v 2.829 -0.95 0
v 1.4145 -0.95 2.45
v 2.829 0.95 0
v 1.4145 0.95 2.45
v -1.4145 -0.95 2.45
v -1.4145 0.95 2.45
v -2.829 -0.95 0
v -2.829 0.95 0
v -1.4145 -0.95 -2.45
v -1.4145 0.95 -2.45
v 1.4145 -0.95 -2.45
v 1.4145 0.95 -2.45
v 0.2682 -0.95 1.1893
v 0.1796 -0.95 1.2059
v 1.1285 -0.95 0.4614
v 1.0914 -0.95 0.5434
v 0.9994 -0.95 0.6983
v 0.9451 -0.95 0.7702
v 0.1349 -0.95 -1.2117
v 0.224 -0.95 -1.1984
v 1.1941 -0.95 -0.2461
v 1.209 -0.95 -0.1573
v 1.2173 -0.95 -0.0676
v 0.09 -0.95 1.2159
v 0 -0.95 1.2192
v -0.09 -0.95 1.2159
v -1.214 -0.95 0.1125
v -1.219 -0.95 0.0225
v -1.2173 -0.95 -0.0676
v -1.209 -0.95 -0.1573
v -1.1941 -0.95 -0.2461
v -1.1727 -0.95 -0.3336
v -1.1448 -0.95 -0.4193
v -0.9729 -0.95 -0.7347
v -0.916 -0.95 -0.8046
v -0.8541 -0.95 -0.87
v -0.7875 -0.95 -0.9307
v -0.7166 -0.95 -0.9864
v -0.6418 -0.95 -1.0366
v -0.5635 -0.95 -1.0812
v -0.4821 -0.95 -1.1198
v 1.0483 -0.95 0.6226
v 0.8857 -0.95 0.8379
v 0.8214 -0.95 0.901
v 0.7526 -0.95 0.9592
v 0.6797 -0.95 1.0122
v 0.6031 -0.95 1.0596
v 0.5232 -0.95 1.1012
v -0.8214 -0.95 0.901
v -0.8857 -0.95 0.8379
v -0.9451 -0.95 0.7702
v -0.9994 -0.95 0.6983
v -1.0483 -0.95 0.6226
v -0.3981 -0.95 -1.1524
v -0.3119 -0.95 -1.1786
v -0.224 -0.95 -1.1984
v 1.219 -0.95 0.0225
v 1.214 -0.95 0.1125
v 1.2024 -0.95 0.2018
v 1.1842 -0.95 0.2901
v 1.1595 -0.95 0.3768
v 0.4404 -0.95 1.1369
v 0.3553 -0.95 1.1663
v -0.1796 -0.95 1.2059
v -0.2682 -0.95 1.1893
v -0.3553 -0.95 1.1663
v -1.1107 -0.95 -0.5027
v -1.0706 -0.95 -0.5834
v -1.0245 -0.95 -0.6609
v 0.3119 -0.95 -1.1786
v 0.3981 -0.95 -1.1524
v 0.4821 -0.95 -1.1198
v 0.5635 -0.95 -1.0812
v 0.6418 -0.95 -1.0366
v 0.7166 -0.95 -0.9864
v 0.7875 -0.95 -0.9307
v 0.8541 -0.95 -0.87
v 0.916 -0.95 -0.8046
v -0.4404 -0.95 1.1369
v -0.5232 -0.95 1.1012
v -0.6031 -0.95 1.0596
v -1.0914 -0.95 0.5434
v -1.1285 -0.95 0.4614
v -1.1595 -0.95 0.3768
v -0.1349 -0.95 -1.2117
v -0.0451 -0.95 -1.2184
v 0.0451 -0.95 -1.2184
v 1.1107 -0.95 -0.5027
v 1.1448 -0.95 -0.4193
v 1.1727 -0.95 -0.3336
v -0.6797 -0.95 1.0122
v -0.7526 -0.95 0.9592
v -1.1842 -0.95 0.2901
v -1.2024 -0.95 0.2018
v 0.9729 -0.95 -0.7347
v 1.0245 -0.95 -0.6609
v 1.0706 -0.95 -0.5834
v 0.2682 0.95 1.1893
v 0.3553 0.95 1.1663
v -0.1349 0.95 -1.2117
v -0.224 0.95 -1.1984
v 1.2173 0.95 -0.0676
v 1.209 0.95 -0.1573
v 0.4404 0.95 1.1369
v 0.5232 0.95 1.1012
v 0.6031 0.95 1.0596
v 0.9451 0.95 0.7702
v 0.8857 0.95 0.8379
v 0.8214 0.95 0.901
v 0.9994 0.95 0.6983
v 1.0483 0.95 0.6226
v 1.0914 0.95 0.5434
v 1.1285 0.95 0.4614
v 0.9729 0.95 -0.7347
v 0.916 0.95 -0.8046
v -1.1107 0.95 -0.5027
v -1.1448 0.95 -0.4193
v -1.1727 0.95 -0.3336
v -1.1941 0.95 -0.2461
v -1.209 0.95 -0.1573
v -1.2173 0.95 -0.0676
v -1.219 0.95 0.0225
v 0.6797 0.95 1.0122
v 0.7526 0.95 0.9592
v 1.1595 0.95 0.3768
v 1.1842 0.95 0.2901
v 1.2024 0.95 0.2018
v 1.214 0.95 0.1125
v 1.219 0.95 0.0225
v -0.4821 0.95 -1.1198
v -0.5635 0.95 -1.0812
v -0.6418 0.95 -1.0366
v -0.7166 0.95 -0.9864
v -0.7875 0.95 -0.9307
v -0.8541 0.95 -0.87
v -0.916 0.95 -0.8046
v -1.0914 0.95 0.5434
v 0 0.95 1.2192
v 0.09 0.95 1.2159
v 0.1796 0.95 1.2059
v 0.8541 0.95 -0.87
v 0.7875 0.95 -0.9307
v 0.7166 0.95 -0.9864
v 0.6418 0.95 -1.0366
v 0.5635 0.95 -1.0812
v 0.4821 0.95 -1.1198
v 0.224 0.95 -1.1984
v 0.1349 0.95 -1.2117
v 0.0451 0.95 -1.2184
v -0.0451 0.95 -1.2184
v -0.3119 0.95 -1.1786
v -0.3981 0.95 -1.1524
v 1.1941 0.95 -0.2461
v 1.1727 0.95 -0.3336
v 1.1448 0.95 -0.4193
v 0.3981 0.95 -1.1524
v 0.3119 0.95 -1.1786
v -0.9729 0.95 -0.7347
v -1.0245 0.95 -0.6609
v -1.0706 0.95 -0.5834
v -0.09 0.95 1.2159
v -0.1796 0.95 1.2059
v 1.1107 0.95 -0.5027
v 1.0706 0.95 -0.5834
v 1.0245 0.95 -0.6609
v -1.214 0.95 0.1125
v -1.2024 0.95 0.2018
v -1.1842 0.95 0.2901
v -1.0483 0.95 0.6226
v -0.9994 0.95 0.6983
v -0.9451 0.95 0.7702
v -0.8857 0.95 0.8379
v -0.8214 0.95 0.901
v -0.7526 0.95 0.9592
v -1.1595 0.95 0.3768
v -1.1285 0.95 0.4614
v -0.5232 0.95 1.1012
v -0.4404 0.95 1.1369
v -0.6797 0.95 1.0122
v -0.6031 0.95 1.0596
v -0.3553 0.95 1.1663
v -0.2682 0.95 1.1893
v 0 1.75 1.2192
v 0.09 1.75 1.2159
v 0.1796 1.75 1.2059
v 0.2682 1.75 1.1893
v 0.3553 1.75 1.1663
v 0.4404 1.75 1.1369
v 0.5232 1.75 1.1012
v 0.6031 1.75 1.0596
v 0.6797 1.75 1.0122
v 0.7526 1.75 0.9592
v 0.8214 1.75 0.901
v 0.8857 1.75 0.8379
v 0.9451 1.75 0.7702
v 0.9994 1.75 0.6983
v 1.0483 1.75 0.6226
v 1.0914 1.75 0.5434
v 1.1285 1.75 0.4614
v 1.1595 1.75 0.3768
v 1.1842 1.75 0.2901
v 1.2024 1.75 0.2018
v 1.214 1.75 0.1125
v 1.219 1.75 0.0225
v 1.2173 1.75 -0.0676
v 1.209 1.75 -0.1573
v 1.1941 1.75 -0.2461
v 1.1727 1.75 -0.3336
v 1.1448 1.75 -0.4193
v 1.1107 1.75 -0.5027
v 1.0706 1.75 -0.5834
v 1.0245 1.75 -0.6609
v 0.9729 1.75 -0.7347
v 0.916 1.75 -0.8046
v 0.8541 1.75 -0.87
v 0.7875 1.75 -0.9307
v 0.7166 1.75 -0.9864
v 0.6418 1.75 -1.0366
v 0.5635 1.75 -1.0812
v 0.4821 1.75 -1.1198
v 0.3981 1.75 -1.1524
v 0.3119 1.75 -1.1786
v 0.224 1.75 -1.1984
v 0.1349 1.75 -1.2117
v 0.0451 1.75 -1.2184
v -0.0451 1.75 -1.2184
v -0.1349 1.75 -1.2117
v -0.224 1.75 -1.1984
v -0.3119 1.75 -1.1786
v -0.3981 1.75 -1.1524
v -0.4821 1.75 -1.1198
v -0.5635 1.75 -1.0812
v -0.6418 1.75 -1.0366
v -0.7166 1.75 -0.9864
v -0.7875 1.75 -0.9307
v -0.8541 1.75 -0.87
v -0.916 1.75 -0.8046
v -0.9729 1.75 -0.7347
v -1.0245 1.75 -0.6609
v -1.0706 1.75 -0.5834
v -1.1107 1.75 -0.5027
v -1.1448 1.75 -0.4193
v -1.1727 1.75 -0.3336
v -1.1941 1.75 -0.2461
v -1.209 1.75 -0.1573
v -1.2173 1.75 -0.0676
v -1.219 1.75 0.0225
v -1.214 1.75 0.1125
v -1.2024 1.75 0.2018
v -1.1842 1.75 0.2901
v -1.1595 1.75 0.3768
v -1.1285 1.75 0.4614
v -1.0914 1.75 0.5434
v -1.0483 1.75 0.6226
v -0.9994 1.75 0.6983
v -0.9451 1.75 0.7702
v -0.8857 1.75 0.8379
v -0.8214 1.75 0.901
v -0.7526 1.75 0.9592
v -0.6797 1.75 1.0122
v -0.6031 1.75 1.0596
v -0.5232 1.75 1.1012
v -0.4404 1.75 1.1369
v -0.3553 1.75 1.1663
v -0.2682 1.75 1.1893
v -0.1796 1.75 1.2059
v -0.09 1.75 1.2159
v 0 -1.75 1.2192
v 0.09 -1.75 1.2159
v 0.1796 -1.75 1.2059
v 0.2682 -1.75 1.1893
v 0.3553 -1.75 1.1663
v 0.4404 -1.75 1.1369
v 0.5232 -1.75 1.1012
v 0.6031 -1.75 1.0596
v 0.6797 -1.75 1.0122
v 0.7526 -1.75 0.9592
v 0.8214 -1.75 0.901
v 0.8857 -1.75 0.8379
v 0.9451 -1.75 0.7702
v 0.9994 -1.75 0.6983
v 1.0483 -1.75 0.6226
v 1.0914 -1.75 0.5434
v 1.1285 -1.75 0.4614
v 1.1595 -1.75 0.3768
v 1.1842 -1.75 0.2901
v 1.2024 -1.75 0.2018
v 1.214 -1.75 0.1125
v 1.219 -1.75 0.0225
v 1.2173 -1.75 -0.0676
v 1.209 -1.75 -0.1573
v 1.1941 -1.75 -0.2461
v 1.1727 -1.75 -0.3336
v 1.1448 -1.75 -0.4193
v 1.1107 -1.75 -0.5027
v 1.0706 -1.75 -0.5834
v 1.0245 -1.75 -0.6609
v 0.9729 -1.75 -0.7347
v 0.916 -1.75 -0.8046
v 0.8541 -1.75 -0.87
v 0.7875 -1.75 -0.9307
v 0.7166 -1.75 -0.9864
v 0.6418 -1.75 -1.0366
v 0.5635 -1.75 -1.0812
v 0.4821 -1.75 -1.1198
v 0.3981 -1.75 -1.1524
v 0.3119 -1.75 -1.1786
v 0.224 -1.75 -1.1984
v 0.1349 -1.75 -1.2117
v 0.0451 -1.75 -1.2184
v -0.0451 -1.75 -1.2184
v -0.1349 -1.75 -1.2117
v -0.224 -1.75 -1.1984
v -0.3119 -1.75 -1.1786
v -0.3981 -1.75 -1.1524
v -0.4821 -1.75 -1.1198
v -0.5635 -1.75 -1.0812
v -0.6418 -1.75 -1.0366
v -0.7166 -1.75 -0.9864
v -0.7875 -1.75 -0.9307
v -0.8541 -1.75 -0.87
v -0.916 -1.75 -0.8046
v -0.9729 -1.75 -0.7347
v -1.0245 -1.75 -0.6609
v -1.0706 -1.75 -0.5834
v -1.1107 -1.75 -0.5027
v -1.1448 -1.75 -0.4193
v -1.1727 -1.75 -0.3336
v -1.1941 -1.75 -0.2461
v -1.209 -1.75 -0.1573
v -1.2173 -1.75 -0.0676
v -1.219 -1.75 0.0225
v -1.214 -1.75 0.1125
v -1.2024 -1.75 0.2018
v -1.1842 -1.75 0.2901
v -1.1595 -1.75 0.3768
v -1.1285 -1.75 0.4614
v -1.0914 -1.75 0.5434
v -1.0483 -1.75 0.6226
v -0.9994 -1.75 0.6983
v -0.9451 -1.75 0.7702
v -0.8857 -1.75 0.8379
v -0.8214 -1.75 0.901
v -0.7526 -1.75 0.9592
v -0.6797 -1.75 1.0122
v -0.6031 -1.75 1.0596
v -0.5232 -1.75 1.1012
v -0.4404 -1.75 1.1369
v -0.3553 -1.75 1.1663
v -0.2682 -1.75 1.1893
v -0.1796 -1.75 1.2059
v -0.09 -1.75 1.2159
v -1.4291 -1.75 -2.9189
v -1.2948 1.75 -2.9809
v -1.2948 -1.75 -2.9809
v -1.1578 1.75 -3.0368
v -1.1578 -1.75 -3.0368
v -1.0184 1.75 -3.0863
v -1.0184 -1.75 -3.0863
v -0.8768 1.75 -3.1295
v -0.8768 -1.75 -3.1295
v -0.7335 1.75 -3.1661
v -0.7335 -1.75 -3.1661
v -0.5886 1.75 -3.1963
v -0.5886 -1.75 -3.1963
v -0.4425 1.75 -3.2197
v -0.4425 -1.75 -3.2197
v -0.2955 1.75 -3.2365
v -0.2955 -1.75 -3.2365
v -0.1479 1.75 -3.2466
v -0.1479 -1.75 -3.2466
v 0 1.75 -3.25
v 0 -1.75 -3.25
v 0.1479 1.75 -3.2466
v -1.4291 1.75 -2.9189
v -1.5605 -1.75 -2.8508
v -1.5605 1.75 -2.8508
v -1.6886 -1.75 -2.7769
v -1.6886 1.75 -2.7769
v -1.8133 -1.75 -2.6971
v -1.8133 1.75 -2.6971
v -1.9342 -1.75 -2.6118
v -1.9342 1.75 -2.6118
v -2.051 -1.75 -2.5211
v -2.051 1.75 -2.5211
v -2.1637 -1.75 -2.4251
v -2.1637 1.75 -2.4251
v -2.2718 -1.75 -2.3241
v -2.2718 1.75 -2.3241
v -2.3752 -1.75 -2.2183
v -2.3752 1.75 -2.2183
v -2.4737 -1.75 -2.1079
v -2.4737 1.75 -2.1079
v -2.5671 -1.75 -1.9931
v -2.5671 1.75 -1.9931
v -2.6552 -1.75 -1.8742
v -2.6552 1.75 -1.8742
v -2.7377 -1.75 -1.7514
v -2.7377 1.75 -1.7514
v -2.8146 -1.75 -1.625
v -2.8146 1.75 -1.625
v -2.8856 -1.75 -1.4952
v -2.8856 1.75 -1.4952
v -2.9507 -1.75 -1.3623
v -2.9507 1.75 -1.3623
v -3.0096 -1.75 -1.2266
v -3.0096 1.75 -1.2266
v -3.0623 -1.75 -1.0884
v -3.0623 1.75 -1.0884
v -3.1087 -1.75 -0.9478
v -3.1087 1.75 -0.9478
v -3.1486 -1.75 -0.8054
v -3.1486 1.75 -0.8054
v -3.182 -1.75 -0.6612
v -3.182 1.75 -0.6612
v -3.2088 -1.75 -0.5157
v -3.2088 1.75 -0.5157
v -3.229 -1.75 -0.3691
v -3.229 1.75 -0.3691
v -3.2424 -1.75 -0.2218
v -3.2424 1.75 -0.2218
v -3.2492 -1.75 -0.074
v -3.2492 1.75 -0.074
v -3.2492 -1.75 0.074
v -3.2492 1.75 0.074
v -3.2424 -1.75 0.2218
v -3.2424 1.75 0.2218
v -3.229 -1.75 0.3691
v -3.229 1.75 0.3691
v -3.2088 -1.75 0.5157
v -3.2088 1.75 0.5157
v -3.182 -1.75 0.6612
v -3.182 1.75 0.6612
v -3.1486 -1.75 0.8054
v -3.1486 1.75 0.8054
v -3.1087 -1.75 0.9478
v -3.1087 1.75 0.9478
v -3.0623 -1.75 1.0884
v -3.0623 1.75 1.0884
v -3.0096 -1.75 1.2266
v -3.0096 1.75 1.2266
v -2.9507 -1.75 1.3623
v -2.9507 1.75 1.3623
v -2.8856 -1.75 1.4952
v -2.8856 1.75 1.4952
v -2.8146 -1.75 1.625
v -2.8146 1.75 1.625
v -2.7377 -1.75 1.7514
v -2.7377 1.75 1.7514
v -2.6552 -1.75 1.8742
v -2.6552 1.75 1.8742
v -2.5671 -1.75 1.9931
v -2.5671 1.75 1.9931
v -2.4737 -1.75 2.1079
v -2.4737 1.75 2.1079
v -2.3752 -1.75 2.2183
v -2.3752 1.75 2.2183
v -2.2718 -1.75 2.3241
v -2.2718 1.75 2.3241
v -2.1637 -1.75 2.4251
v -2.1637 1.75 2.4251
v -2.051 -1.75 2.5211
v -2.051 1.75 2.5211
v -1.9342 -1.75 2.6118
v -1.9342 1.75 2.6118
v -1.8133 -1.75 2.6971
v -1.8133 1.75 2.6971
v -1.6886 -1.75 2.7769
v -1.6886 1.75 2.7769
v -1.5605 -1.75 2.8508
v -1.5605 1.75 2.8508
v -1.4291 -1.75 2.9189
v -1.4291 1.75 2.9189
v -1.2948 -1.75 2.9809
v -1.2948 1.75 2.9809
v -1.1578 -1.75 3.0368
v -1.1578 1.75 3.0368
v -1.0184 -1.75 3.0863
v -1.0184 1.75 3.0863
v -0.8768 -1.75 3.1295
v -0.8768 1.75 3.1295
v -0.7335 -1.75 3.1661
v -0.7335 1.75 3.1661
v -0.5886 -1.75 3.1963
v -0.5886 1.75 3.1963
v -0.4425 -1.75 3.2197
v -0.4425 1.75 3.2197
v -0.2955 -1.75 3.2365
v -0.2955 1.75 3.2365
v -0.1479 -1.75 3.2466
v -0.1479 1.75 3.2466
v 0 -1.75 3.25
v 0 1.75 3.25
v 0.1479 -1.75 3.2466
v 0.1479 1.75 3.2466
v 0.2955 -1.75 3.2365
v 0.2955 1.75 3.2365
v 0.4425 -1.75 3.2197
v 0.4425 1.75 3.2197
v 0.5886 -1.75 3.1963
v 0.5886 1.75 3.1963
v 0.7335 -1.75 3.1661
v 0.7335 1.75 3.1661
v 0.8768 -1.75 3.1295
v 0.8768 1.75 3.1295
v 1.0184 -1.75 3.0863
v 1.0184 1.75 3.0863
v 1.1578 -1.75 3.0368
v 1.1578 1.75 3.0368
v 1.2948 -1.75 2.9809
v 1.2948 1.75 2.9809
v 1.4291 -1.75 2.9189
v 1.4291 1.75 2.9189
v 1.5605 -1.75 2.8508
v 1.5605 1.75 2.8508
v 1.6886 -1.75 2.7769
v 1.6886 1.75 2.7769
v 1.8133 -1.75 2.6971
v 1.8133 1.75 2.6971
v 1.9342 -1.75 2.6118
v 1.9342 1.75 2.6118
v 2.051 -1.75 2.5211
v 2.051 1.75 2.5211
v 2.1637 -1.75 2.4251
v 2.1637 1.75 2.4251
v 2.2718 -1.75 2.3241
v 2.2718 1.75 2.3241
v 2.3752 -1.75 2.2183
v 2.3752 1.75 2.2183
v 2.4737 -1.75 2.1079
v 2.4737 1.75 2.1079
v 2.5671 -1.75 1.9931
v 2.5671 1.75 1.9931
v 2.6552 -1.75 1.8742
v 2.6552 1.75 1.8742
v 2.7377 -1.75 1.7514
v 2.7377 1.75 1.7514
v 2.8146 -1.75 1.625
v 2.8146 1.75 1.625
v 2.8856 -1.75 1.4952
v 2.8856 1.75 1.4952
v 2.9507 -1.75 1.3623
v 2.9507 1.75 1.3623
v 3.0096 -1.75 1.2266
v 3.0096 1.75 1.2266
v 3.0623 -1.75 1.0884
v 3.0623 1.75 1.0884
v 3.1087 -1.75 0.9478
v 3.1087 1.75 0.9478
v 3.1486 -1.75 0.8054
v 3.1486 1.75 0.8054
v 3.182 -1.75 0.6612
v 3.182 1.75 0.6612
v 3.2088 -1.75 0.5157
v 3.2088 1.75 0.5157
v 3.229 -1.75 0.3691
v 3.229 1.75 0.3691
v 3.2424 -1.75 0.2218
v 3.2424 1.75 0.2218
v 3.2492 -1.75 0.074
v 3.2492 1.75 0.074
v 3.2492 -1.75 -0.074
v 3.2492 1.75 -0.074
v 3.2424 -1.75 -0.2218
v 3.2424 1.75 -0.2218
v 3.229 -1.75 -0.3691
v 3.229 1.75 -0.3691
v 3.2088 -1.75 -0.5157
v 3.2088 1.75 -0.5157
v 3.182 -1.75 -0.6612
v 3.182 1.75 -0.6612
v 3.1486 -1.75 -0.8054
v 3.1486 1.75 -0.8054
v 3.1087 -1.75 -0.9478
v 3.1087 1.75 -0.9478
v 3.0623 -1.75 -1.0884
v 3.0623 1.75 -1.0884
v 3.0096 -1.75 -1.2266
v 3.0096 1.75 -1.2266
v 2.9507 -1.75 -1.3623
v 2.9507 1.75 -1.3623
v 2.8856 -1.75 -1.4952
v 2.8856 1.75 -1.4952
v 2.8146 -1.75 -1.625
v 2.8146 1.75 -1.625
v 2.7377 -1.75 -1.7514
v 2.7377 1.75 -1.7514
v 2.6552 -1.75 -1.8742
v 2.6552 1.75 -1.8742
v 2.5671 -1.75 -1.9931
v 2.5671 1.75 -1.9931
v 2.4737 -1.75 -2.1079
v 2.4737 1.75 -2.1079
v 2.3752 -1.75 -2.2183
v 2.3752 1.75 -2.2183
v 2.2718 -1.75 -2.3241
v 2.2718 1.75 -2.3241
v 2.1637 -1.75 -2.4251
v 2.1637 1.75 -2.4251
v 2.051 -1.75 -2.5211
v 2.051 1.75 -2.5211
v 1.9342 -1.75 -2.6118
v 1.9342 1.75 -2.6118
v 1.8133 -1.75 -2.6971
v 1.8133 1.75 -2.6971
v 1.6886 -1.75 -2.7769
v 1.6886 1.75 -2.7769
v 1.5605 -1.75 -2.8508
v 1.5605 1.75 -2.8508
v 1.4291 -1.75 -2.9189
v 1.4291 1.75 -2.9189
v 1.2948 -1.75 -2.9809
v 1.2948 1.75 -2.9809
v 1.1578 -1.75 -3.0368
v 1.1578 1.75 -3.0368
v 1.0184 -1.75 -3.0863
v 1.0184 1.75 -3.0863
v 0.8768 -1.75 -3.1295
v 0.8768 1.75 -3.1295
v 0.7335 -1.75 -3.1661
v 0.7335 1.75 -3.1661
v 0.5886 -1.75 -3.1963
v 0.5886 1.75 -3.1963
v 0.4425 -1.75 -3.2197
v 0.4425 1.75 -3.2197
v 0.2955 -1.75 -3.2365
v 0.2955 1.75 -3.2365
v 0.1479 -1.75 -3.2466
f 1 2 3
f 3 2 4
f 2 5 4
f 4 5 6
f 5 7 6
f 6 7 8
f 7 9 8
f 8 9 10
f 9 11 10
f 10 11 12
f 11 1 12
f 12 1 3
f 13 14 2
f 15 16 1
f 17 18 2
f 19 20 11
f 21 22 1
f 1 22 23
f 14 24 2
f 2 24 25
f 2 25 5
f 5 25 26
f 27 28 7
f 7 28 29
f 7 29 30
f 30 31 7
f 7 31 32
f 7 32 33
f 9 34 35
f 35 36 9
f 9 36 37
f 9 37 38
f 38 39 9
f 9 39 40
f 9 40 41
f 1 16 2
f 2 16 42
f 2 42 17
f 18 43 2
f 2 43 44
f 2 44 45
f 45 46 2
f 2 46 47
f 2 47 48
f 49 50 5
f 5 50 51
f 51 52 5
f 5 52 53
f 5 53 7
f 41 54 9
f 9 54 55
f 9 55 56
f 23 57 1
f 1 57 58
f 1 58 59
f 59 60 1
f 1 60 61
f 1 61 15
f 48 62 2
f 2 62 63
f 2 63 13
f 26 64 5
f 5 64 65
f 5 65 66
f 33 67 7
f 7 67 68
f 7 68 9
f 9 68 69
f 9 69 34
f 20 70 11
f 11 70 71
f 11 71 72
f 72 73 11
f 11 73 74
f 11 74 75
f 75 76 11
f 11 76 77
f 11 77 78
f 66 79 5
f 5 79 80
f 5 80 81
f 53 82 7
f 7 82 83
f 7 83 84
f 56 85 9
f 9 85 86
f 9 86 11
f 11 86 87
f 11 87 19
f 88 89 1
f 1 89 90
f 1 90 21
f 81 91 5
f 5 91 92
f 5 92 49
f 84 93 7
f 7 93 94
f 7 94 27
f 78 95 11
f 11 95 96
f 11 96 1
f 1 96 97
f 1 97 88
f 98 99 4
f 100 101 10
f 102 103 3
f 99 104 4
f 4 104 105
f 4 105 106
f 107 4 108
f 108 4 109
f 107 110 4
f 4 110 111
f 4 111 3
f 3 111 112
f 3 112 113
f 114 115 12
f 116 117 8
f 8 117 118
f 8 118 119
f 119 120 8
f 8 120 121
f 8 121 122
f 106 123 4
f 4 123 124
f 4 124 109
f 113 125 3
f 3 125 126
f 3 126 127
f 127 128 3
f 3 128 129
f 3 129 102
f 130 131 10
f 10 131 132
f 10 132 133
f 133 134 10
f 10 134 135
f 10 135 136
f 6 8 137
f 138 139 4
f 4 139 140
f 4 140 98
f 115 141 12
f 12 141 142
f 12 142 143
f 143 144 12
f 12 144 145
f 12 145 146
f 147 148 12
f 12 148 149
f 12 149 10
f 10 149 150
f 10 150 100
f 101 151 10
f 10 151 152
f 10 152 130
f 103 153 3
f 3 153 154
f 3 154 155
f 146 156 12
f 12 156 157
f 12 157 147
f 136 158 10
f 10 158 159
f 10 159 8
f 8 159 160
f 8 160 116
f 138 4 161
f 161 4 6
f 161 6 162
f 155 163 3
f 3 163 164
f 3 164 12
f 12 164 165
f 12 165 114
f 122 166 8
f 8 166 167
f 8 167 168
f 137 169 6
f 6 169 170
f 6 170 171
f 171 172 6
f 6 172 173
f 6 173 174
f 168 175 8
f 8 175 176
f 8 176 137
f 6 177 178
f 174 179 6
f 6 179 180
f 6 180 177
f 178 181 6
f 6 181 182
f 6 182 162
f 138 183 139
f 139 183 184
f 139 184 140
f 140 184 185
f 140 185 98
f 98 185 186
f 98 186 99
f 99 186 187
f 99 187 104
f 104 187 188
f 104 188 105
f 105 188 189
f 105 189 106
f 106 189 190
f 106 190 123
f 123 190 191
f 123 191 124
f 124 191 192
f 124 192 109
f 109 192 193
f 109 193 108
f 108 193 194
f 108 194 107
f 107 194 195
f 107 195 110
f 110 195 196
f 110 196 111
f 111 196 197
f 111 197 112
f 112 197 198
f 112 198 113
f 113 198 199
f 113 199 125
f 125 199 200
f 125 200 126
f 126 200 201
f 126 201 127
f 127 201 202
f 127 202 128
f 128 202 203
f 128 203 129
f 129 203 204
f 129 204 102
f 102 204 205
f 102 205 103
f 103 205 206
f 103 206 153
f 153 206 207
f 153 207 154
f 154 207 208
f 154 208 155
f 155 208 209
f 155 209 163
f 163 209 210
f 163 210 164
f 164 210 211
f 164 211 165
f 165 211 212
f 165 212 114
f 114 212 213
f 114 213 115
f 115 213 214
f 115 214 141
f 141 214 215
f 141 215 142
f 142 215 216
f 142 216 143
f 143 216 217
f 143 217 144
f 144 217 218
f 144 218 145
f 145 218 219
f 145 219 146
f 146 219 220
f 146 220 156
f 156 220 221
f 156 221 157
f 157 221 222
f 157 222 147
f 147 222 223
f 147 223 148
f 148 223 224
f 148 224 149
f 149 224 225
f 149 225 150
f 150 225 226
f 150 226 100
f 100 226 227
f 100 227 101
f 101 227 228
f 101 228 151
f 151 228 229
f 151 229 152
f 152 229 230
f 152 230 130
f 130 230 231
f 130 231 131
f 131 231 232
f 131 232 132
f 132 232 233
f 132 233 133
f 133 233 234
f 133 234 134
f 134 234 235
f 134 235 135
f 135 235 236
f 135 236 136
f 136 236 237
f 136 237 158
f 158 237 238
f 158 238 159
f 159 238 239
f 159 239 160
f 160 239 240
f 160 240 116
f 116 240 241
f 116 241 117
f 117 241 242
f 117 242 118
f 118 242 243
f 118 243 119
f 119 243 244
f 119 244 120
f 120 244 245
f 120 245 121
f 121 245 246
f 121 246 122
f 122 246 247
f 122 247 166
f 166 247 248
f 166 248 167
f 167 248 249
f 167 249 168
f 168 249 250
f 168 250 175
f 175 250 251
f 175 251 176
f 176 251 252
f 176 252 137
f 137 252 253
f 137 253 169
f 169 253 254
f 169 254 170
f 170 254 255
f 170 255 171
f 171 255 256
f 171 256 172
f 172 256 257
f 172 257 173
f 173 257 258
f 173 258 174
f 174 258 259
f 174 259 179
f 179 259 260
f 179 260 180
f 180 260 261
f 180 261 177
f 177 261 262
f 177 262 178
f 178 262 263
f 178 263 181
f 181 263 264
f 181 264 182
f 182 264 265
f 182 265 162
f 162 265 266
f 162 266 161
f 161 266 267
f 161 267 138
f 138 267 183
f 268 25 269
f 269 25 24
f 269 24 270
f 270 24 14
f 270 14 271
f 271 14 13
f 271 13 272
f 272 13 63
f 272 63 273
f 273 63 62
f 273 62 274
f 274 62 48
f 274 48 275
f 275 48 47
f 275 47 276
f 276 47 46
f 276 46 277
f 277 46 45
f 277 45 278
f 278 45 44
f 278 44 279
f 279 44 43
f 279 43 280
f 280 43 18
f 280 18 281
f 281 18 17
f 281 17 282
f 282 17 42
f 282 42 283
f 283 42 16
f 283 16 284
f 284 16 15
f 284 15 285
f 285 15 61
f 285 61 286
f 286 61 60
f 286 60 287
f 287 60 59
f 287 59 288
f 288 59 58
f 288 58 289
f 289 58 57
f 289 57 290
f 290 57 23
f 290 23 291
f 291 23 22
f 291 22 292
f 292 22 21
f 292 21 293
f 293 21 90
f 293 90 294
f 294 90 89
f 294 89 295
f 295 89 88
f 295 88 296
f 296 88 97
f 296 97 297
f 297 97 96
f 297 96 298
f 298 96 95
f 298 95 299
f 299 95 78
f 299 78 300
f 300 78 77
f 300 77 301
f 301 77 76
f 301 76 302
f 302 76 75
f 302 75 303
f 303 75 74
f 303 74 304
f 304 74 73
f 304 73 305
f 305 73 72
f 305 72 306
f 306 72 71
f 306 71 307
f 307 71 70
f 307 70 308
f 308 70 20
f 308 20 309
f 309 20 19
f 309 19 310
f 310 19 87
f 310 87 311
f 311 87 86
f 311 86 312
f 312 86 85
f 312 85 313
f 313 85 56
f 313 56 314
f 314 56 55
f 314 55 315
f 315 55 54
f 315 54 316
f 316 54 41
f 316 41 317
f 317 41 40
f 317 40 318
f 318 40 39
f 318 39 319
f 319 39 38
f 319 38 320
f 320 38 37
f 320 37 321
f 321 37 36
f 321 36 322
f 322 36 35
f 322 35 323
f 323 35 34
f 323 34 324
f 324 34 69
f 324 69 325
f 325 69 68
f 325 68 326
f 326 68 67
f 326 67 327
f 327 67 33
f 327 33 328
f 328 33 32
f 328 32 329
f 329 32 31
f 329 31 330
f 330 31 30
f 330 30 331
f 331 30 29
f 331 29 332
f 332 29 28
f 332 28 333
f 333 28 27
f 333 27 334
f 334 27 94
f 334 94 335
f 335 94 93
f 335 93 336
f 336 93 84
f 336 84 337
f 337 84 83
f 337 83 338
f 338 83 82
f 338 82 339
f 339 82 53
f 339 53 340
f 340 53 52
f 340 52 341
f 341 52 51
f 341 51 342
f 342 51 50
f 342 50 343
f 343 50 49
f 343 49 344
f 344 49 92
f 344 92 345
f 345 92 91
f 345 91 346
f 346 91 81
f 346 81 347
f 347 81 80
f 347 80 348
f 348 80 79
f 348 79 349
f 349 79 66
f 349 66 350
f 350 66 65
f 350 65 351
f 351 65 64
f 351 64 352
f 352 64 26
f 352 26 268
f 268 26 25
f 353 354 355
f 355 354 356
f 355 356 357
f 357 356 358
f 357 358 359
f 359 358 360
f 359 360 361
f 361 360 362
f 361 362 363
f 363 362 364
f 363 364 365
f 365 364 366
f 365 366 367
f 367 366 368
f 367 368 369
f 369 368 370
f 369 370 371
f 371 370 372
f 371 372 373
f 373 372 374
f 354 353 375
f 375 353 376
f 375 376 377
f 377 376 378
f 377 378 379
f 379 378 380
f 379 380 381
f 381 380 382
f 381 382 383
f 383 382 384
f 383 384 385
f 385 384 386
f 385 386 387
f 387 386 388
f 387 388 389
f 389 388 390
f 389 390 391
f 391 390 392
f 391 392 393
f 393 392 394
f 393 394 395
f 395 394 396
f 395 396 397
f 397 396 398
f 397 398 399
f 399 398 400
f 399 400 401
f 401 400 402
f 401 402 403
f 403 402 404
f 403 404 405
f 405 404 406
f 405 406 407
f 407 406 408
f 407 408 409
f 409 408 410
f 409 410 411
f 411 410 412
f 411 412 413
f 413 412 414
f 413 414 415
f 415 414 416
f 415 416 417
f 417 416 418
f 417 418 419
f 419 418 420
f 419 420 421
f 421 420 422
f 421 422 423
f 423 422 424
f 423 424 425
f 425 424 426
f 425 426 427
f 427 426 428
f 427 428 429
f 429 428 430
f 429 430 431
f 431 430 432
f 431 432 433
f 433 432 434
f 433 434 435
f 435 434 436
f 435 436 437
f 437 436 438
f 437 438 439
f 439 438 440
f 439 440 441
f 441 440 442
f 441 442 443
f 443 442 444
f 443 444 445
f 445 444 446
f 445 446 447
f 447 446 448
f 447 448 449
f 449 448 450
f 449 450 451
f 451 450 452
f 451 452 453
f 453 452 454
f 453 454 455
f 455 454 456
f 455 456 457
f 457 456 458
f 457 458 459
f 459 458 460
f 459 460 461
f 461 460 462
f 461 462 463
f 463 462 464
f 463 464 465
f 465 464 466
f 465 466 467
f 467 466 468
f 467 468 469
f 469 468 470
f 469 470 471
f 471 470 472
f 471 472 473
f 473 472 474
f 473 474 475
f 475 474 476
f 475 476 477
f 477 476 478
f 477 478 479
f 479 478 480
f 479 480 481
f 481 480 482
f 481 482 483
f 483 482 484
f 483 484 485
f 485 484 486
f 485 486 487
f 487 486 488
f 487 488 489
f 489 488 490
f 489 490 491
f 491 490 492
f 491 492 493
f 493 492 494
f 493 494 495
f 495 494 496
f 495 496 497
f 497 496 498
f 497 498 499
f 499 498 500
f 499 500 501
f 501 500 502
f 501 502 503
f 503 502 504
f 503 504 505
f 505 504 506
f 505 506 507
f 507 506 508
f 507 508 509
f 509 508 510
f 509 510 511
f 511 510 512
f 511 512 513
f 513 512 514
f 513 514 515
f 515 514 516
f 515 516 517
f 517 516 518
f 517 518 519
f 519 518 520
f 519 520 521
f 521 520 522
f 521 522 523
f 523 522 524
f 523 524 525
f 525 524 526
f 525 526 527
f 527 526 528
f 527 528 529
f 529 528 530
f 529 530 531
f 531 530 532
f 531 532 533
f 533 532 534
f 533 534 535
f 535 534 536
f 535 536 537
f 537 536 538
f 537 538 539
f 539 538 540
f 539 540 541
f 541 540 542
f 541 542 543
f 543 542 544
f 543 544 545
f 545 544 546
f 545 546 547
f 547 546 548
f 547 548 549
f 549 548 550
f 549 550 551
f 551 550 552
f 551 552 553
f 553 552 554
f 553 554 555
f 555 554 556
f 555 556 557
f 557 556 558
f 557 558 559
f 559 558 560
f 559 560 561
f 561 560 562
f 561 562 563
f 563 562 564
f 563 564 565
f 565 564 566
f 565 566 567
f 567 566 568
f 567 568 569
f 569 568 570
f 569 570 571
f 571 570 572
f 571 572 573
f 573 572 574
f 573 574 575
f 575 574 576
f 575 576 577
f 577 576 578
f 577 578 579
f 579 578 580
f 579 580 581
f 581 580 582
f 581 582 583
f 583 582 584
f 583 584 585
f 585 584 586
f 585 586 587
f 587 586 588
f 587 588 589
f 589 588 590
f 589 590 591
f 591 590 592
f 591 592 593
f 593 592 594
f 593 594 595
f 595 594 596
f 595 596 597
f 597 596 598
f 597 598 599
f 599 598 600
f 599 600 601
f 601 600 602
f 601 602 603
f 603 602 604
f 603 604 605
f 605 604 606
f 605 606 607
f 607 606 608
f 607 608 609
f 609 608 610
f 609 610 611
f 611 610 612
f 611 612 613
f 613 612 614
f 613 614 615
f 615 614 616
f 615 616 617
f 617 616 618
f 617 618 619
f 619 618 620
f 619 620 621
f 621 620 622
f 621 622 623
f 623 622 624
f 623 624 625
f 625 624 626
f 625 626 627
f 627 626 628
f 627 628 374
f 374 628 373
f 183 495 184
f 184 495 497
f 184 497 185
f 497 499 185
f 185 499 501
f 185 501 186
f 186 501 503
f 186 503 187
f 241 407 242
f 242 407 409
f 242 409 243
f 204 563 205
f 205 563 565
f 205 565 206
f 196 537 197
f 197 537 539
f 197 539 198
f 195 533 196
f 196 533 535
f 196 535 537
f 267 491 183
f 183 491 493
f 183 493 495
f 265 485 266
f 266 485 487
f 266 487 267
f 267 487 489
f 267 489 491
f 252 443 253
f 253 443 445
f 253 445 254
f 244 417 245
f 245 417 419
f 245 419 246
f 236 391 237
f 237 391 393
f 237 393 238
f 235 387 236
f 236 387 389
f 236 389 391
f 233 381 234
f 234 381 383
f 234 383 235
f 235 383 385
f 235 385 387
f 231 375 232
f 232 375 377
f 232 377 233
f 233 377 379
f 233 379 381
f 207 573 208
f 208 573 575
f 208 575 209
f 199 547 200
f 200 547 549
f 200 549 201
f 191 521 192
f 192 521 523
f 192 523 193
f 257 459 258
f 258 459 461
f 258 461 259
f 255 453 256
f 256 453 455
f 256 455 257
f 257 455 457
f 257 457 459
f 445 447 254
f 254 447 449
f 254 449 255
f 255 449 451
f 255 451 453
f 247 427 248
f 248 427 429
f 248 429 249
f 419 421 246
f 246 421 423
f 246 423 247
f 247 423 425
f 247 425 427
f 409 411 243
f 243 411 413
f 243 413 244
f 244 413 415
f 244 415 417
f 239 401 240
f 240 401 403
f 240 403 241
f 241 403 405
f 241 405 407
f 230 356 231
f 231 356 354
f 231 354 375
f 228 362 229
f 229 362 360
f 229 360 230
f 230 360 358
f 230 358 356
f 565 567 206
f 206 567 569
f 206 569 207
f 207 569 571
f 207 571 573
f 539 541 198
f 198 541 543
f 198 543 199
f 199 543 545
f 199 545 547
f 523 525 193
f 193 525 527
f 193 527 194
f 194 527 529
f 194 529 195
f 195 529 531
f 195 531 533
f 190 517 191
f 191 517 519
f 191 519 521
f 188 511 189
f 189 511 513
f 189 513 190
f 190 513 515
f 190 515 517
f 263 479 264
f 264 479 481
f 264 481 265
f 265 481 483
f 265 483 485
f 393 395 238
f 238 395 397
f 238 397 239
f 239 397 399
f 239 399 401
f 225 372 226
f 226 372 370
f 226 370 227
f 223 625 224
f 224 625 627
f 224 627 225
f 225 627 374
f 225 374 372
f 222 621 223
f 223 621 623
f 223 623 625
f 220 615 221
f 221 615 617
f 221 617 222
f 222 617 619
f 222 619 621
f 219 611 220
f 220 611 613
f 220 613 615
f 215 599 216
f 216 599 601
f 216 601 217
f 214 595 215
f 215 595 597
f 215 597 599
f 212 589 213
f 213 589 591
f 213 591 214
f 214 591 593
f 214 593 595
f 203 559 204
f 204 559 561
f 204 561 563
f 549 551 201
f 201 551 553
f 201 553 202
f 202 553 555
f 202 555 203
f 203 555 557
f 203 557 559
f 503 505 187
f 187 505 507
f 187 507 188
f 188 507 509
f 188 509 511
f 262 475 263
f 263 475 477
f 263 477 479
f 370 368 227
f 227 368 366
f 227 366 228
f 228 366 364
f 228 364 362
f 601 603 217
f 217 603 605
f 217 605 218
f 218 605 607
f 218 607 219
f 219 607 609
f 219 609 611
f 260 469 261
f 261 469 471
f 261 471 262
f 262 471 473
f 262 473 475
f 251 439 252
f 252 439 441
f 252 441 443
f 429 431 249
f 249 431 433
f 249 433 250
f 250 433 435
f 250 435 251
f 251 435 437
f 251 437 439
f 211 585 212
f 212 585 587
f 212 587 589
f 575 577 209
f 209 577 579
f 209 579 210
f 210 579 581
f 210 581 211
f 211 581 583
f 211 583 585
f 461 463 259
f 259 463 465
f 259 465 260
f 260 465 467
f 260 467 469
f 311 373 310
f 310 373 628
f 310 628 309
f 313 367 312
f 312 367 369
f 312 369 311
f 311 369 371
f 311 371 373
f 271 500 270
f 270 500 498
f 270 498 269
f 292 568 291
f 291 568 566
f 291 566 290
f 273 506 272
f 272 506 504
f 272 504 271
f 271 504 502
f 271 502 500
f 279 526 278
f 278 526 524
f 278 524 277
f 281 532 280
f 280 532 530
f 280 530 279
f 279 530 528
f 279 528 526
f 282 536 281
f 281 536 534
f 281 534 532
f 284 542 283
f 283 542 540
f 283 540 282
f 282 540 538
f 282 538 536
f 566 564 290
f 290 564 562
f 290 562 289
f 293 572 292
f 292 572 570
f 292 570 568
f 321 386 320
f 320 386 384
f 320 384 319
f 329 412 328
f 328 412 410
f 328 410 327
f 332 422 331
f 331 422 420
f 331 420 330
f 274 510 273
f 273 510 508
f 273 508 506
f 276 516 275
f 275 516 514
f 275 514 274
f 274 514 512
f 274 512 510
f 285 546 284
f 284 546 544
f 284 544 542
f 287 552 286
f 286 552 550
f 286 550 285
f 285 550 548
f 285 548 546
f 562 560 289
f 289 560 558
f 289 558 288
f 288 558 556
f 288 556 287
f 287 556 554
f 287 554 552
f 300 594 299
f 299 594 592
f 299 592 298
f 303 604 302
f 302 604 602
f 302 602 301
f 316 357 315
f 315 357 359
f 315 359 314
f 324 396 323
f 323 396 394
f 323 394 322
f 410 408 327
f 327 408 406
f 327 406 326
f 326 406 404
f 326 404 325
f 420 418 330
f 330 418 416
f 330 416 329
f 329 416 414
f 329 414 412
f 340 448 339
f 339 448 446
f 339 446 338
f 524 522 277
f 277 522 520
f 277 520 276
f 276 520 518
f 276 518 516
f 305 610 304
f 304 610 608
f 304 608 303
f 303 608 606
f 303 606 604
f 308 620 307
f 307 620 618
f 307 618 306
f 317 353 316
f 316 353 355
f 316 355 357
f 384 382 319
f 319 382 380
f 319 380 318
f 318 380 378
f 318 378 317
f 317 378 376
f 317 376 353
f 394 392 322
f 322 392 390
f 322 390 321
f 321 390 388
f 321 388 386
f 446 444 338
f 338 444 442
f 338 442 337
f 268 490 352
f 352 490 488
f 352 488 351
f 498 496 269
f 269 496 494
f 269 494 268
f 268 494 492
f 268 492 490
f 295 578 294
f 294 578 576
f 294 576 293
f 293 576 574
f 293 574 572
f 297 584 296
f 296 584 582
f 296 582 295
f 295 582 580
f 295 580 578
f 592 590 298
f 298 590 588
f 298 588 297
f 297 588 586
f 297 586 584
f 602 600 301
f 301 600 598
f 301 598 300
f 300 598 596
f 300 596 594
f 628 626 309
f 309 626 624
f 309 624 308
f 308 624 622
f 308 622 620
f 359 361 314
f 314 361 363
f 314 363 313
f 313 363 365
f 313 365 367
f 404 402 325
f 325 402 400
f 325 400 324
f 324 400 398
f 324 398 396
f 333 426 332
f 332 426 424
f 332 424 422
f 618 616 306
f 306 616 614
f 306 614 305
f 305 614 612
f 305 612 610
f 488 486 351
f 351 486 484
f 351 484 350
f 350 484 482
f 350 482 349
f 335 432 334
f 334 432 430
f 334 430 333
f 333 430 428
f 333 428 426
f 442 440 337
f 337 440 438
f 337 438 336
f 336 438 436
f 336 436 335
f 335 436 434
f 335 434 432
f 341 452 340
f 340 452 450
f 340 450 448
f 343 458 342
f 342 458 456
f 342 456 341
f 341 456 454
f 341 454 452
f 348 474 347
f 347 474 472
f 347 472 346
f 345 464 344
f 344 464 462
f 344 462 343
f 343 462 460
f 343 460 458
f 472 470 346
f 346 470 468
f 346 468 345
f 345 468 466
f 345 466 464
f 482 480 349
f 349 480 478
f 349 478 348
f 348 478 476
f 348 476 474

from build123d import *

# Parameters (mm, degrees)
SKETCH1_R             = 3.25
BOSS_EXTRUDE1_DEPTH   = 1.75
CUT_EXTRUDE1_DEPTH    = 0.95
F_2_CLEARANCE_HOLE1_D = 2.4384


with BuildPart() as part:
    # Sketch1 → Boss-Extrude1 (new, symmetric)
    with BuildSketch(Plane(origin=(0, 0, 0), x_dir=(1, 0, 0), z_dir=(0, 1, 0))):
        with Locations(Location((0, 0, 0), (0, 0, 270))):
            Circle(SKETCH1_R)
    extrude(amount=BOSS_EXTRUDE1_DEPTH, both=True)

    # Sketch2 → Cut-Extrude1 (cut, symmetric)
    with BuildSketch(Plane(origin=(0, 0, 0), x_dir=(1, 0, 0), z_dir=(0, 1, 0))):
        Polygon((2.829016319, 0), (1.41450816, 2.45), (-1.41450816, 2.45), (-2.829016319, 0), (-1.41450816, -2.45), (1.41450816, -2.45), align=None)
    extrude(amount=CUT_EXTRUDE1_DEPTH, both=True, mode=Mode.SUBTRACT)

    # #2 Clearance Hole1 (through all)
    with Locations(Plane(origin=(0, 1.75, 0), x_dir=(1, 0, 0), z_dir=(0, 1, 0))):
        with Locations((0, 0)):
            Hole(F_2_CLEARANCE_HOLE1_D / 2)


solid = part.part
